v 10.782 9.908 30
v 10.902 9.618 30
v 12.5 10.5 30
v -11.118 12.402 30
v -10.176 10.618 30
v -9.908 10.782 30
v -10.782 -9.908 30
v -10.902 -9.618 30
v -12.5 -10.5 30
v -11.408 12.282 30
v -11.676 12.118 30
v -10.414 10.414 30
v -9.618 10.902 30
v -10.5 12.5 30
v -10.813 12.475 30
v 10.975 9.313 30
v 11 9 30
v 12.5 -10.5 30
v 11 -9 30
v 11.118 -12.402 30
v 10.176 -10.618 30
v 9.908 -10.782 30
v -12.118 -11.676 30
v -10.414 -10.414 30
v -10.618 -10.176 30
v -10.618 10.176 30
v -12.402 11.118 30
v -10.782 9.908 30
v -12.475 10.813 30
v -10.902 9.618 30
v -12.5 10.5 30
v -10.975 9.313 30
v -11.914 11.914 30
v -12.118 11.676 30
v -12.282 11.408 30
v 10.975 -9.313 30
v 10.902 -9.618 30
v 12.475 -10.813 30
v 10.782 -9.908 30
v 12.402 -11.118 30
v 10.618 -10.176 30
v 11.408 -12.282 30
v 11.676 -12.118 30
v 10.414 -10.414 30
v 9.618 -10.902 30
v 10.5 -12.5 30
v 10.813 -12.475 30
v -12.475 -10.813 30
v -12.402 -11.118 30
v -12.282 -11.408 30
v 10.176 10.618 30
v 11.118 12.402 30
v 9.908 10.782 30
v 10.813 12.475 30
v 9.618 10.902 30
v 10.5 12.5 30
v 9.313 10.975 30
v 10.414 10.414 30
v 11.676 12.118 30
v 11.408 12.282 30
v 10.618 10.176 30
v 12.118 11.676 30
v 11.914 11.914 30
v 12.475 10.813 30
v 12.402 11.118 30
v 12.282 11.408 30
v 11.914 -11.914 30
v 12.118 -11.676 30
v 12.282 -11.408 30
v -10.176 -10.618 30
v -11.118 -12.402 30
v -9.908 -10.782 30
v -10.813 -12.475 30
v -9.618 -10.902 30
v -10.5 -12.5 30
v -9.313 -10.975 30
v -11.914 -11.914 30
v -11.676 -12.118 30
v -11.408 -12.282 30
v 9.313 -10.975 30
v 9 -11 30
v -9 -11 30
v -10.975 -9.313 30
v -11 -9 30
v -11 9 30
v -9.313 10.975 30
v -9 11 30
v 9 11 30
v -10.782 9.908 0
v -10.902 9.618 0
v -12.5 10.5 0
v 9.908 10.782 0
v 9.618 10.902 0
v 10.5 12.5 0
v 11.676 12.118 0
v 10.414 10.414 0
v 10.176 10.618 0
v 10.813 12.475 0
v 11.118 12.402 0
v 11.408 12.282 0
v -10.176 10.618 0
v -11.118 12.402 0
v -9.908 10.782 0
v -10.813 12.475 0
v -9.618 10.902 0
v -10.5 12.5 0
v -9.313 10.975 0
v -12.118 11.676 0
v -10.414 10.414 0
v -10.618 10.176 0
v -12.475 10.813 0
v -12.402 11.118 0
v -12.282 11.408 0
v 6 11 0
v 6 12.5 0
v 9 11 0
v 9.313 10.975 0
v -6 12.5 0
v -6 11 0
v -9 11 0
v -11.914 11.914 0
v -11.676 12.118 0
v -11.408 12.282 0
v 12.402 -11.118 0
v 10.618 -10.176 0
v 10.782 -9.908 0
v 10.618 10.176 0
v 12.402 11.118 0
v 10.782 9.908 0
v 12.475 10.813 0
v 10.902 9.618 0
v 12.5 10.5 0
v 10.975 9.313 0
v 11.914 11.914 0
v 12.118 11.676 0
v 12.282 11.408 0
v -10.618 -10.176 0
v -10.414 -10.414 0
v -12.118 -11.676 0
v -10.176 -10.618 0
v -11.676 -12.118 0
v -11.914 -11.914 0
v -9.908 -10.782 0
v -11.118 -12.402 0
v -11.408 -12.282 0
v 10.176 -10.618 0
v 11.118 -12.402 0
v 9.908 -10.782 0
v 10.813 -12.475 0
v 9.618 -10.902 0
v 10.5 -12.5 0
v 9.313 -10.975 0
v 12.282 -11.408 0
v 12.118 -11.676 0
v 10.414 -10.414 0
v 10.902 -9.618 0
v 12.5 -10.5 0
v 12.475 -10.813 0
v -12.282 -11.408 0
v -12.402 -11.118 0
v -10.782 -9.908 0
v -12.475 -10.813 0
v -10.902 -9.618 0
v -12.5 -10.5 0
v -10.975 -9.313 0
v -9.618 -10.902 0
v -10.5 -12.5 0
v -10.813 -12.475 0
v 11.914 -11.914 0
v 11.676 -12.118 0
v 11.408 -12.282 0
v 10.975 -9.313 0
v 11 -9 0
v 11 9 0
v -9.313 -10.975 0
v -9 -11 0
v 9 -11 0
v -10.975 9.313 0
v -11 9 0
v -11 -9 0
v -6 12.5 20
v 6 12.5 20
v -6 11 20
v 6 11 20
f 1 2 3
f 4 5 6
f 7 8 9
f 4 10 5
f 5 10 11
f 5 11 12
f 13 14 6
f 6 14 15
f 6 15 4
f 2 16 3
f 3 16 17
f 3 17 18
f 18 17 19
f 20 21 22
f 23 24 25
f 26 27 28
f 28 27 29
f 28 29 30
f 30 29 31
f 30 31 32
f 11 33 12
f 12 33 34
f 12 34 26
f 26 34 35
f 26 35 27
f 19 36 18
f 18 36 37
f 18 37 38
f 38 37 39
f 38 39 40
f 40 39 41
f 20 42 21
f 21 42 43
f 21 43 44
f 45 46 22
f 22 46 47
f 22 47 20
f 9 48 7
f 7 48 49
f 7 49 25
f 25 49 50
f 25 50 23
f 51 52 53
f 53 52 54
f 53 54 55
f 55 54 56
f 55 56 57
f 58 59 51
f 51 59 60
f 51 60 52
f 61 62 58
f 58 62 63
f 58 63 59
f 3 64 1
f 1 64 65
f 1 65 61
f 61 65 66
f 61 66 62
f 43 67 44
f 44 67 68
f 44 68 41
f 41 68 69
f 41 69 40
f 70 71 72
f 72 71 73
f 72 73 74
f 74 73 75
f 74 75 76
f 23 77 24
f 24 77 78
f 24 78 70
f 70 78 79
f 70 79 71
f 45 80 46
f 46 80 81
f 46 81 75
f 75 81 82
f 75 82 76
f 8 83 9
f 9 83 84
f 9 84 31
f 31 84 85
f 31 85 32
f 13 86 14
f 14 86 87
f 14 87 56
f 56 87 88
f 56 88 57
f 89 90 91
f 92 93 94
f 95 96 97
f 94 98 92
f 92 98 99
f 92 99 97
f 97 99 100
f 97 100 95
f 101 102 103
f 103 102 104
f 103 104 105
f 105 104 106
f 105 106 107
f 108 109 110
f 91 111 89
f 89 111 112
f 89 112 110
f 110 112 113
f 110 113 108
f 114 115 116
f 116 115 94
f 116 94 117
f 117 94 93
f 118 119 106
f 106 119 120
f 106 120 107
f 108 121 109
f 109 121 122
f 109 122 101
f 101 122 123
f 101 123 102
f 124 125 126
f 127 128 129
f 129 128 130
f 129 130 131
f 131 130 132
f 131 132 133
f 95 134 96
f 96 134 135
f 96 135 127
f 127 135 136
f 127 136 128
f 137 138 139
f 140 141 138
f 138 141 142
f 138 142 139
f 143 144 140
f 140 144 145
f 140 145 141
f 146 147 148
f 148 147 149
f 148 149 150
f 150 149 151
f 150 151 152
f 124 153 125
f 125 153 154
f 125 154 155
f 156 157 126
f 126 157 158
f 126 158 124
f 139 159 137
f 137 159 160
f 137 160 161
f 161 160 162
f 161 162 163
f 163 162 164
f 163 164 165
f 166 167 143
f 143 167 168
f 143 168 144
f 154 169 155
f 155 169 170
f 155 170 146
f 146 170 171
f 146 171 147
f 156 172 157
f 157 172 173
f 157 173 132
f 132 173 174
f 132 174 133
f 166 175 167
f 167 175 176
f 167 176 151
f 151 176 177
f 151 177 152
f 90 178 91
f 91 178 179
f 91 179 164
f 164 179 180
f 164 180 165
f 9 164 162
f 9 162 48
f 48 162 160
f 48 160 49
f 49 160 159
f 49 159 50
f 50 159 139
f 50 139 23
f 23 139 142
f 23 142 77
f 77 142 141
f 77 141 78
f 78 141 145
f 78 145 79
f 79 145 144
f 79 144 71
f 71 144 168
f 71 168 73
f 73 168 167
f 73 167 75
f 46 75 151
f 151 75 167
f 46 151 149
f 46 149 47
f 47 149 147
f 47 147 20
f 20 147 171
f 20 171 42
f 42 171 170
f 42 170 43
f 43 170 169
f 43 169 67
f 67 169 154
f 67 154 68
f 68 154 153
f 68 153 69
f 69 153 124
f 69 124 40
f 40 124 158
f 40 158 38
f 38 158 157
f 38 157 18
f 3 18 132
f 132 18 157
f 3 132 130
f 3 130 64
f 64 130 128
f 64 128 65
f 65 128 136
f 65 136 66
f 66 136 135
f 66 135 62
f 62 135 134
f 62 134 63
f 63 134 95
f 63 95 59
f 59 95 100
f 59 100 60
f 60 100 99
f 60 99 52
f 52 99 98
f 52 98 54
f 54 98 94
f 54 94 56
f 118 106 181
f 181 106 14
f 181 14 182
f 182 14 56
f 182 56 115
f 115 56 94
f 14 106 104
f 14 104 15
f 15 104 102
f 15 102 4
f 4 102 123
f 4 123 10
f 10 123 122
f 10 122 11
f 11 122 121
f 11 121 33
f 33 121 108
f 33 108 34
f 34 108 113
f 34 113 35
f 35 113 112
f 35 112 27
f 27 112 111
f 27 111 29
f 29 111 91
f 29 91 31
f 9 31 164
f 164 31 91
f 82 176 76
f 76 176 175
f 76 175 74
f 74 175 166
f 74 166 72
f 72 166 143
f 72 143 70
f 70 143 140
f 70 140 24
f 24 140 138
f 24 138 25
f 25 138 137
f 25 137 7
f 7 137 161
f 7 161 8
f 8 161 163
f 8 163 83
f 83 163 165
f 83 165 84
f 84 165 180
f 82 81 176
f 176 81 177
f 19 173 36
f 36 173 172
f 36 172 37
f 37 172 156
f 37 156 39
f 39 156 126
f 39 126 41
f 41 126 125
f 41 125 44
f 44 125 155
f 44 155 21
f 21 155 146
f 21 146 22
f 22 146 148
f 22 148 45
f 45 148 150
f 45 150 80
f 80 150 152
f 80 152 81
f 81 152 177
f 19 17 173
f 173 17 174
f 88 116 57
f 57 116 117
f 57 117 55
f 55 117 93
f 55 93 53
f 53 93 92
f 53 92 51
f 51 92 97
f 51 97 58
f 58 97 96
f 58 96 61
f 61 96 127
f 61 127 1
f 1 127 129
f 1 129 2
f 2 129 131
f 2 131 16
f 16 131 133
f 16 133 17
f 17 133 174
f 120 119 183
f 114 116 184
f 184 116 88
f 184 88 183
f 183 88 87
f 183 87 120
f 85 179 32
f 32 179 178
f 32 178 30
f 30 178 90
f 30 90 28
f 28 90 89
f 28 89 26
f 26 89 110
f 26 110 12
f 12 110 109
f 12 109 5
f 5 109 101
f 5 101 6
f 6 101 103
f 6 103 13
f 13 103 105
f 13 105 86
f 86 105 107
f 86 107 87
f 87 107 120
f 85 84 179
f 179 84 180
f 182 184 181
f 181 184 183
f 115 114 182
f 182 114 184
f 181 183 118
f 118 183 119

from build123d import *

# Parameters (mm, degrees)
EXTRUDE_1_DEPTH     = 30
CUT_EXTRUDE_1_REACH = 43.003
SKETCH_2_W          = 12
SKETCH_2_H          = 20


with BuildPart() as part:
    # 草图1 → 凸台-拉伸1 (new body)
    with BuildSketch(Plane.XY):
        with BuildLine():
            Line((12.5, 10.5), (12.5, -10.5))
            ThreePointArc((12.5, -10.5), (11.914213562, -11.914213562), (10.5, -12.5))
            Line((10.5, -12.5), (-10.5, -12.5))
            ThreePointArc((-10.5, -12.5), (-11.914213562, -11.914213562), (-12.5, -10.5))
            Line((-12.5, -10.5), (-12.5, 10.5))
            ThreePointArc((-12.5, 10.5), (-11.914213562, 11.914213562), (-10.5, 12.5))
            Line((-10.5, 12.5), (10.5, 12.5))
            ThreePointArc((10.5, 12.5), (11.914213562, 11.914213562), (12.5, 10.5))
        make_face()
        with BuildLine():
            Line((-9, 11), (9, 11))
            ThreePointArc((9, 11), (10.414213562, 10.414213562), (11, 9))
            Line((11, 9), (11, -9))
            ThreePointArc((11, -9), (10.414213562, -10.414213562), (9, -11))
            Line((9, -11), (-9, -11))
            ThreePointArc((-9, -11), (-10.414213562, -10.414213562), (-11, -9))
            Line((-11, -9), (-11, 9))
            ThreePointArc((-11, 9), (-10.414213562, 10.414213562), (-9, 11))
        make_face(mode=Mode.SUBTRACT)
    extrude(amount=EXTRUDE_1_DEPTH)

    # 草图2 → 切除-拉伸1 (cut, up to next)
    with BuildSketch(Plane(origin=(0, 12.5, 0), x_dir=(1, 0, 0), z_dir=(0, 1, 0)), mode=Mode.PRIVATE) as cut_extrude_1_sk1:
        with Locations((0, -10)):
            Rectangle(SKETCH_2_W, SKETCH_2_H)
    cut_extrude_1_tool1 = extrude(cut_extrude_1_sk1.sketch, amount=-CUT_EXTRUDE_1_REACH, mode=Mode.PRIVATE) & part.part
    add(cut_extrude_1_tool1.solids().sort_by_distance((0, 12.5, 10))[0], mode=Mode.SUBTRACT)


solid = part.part
